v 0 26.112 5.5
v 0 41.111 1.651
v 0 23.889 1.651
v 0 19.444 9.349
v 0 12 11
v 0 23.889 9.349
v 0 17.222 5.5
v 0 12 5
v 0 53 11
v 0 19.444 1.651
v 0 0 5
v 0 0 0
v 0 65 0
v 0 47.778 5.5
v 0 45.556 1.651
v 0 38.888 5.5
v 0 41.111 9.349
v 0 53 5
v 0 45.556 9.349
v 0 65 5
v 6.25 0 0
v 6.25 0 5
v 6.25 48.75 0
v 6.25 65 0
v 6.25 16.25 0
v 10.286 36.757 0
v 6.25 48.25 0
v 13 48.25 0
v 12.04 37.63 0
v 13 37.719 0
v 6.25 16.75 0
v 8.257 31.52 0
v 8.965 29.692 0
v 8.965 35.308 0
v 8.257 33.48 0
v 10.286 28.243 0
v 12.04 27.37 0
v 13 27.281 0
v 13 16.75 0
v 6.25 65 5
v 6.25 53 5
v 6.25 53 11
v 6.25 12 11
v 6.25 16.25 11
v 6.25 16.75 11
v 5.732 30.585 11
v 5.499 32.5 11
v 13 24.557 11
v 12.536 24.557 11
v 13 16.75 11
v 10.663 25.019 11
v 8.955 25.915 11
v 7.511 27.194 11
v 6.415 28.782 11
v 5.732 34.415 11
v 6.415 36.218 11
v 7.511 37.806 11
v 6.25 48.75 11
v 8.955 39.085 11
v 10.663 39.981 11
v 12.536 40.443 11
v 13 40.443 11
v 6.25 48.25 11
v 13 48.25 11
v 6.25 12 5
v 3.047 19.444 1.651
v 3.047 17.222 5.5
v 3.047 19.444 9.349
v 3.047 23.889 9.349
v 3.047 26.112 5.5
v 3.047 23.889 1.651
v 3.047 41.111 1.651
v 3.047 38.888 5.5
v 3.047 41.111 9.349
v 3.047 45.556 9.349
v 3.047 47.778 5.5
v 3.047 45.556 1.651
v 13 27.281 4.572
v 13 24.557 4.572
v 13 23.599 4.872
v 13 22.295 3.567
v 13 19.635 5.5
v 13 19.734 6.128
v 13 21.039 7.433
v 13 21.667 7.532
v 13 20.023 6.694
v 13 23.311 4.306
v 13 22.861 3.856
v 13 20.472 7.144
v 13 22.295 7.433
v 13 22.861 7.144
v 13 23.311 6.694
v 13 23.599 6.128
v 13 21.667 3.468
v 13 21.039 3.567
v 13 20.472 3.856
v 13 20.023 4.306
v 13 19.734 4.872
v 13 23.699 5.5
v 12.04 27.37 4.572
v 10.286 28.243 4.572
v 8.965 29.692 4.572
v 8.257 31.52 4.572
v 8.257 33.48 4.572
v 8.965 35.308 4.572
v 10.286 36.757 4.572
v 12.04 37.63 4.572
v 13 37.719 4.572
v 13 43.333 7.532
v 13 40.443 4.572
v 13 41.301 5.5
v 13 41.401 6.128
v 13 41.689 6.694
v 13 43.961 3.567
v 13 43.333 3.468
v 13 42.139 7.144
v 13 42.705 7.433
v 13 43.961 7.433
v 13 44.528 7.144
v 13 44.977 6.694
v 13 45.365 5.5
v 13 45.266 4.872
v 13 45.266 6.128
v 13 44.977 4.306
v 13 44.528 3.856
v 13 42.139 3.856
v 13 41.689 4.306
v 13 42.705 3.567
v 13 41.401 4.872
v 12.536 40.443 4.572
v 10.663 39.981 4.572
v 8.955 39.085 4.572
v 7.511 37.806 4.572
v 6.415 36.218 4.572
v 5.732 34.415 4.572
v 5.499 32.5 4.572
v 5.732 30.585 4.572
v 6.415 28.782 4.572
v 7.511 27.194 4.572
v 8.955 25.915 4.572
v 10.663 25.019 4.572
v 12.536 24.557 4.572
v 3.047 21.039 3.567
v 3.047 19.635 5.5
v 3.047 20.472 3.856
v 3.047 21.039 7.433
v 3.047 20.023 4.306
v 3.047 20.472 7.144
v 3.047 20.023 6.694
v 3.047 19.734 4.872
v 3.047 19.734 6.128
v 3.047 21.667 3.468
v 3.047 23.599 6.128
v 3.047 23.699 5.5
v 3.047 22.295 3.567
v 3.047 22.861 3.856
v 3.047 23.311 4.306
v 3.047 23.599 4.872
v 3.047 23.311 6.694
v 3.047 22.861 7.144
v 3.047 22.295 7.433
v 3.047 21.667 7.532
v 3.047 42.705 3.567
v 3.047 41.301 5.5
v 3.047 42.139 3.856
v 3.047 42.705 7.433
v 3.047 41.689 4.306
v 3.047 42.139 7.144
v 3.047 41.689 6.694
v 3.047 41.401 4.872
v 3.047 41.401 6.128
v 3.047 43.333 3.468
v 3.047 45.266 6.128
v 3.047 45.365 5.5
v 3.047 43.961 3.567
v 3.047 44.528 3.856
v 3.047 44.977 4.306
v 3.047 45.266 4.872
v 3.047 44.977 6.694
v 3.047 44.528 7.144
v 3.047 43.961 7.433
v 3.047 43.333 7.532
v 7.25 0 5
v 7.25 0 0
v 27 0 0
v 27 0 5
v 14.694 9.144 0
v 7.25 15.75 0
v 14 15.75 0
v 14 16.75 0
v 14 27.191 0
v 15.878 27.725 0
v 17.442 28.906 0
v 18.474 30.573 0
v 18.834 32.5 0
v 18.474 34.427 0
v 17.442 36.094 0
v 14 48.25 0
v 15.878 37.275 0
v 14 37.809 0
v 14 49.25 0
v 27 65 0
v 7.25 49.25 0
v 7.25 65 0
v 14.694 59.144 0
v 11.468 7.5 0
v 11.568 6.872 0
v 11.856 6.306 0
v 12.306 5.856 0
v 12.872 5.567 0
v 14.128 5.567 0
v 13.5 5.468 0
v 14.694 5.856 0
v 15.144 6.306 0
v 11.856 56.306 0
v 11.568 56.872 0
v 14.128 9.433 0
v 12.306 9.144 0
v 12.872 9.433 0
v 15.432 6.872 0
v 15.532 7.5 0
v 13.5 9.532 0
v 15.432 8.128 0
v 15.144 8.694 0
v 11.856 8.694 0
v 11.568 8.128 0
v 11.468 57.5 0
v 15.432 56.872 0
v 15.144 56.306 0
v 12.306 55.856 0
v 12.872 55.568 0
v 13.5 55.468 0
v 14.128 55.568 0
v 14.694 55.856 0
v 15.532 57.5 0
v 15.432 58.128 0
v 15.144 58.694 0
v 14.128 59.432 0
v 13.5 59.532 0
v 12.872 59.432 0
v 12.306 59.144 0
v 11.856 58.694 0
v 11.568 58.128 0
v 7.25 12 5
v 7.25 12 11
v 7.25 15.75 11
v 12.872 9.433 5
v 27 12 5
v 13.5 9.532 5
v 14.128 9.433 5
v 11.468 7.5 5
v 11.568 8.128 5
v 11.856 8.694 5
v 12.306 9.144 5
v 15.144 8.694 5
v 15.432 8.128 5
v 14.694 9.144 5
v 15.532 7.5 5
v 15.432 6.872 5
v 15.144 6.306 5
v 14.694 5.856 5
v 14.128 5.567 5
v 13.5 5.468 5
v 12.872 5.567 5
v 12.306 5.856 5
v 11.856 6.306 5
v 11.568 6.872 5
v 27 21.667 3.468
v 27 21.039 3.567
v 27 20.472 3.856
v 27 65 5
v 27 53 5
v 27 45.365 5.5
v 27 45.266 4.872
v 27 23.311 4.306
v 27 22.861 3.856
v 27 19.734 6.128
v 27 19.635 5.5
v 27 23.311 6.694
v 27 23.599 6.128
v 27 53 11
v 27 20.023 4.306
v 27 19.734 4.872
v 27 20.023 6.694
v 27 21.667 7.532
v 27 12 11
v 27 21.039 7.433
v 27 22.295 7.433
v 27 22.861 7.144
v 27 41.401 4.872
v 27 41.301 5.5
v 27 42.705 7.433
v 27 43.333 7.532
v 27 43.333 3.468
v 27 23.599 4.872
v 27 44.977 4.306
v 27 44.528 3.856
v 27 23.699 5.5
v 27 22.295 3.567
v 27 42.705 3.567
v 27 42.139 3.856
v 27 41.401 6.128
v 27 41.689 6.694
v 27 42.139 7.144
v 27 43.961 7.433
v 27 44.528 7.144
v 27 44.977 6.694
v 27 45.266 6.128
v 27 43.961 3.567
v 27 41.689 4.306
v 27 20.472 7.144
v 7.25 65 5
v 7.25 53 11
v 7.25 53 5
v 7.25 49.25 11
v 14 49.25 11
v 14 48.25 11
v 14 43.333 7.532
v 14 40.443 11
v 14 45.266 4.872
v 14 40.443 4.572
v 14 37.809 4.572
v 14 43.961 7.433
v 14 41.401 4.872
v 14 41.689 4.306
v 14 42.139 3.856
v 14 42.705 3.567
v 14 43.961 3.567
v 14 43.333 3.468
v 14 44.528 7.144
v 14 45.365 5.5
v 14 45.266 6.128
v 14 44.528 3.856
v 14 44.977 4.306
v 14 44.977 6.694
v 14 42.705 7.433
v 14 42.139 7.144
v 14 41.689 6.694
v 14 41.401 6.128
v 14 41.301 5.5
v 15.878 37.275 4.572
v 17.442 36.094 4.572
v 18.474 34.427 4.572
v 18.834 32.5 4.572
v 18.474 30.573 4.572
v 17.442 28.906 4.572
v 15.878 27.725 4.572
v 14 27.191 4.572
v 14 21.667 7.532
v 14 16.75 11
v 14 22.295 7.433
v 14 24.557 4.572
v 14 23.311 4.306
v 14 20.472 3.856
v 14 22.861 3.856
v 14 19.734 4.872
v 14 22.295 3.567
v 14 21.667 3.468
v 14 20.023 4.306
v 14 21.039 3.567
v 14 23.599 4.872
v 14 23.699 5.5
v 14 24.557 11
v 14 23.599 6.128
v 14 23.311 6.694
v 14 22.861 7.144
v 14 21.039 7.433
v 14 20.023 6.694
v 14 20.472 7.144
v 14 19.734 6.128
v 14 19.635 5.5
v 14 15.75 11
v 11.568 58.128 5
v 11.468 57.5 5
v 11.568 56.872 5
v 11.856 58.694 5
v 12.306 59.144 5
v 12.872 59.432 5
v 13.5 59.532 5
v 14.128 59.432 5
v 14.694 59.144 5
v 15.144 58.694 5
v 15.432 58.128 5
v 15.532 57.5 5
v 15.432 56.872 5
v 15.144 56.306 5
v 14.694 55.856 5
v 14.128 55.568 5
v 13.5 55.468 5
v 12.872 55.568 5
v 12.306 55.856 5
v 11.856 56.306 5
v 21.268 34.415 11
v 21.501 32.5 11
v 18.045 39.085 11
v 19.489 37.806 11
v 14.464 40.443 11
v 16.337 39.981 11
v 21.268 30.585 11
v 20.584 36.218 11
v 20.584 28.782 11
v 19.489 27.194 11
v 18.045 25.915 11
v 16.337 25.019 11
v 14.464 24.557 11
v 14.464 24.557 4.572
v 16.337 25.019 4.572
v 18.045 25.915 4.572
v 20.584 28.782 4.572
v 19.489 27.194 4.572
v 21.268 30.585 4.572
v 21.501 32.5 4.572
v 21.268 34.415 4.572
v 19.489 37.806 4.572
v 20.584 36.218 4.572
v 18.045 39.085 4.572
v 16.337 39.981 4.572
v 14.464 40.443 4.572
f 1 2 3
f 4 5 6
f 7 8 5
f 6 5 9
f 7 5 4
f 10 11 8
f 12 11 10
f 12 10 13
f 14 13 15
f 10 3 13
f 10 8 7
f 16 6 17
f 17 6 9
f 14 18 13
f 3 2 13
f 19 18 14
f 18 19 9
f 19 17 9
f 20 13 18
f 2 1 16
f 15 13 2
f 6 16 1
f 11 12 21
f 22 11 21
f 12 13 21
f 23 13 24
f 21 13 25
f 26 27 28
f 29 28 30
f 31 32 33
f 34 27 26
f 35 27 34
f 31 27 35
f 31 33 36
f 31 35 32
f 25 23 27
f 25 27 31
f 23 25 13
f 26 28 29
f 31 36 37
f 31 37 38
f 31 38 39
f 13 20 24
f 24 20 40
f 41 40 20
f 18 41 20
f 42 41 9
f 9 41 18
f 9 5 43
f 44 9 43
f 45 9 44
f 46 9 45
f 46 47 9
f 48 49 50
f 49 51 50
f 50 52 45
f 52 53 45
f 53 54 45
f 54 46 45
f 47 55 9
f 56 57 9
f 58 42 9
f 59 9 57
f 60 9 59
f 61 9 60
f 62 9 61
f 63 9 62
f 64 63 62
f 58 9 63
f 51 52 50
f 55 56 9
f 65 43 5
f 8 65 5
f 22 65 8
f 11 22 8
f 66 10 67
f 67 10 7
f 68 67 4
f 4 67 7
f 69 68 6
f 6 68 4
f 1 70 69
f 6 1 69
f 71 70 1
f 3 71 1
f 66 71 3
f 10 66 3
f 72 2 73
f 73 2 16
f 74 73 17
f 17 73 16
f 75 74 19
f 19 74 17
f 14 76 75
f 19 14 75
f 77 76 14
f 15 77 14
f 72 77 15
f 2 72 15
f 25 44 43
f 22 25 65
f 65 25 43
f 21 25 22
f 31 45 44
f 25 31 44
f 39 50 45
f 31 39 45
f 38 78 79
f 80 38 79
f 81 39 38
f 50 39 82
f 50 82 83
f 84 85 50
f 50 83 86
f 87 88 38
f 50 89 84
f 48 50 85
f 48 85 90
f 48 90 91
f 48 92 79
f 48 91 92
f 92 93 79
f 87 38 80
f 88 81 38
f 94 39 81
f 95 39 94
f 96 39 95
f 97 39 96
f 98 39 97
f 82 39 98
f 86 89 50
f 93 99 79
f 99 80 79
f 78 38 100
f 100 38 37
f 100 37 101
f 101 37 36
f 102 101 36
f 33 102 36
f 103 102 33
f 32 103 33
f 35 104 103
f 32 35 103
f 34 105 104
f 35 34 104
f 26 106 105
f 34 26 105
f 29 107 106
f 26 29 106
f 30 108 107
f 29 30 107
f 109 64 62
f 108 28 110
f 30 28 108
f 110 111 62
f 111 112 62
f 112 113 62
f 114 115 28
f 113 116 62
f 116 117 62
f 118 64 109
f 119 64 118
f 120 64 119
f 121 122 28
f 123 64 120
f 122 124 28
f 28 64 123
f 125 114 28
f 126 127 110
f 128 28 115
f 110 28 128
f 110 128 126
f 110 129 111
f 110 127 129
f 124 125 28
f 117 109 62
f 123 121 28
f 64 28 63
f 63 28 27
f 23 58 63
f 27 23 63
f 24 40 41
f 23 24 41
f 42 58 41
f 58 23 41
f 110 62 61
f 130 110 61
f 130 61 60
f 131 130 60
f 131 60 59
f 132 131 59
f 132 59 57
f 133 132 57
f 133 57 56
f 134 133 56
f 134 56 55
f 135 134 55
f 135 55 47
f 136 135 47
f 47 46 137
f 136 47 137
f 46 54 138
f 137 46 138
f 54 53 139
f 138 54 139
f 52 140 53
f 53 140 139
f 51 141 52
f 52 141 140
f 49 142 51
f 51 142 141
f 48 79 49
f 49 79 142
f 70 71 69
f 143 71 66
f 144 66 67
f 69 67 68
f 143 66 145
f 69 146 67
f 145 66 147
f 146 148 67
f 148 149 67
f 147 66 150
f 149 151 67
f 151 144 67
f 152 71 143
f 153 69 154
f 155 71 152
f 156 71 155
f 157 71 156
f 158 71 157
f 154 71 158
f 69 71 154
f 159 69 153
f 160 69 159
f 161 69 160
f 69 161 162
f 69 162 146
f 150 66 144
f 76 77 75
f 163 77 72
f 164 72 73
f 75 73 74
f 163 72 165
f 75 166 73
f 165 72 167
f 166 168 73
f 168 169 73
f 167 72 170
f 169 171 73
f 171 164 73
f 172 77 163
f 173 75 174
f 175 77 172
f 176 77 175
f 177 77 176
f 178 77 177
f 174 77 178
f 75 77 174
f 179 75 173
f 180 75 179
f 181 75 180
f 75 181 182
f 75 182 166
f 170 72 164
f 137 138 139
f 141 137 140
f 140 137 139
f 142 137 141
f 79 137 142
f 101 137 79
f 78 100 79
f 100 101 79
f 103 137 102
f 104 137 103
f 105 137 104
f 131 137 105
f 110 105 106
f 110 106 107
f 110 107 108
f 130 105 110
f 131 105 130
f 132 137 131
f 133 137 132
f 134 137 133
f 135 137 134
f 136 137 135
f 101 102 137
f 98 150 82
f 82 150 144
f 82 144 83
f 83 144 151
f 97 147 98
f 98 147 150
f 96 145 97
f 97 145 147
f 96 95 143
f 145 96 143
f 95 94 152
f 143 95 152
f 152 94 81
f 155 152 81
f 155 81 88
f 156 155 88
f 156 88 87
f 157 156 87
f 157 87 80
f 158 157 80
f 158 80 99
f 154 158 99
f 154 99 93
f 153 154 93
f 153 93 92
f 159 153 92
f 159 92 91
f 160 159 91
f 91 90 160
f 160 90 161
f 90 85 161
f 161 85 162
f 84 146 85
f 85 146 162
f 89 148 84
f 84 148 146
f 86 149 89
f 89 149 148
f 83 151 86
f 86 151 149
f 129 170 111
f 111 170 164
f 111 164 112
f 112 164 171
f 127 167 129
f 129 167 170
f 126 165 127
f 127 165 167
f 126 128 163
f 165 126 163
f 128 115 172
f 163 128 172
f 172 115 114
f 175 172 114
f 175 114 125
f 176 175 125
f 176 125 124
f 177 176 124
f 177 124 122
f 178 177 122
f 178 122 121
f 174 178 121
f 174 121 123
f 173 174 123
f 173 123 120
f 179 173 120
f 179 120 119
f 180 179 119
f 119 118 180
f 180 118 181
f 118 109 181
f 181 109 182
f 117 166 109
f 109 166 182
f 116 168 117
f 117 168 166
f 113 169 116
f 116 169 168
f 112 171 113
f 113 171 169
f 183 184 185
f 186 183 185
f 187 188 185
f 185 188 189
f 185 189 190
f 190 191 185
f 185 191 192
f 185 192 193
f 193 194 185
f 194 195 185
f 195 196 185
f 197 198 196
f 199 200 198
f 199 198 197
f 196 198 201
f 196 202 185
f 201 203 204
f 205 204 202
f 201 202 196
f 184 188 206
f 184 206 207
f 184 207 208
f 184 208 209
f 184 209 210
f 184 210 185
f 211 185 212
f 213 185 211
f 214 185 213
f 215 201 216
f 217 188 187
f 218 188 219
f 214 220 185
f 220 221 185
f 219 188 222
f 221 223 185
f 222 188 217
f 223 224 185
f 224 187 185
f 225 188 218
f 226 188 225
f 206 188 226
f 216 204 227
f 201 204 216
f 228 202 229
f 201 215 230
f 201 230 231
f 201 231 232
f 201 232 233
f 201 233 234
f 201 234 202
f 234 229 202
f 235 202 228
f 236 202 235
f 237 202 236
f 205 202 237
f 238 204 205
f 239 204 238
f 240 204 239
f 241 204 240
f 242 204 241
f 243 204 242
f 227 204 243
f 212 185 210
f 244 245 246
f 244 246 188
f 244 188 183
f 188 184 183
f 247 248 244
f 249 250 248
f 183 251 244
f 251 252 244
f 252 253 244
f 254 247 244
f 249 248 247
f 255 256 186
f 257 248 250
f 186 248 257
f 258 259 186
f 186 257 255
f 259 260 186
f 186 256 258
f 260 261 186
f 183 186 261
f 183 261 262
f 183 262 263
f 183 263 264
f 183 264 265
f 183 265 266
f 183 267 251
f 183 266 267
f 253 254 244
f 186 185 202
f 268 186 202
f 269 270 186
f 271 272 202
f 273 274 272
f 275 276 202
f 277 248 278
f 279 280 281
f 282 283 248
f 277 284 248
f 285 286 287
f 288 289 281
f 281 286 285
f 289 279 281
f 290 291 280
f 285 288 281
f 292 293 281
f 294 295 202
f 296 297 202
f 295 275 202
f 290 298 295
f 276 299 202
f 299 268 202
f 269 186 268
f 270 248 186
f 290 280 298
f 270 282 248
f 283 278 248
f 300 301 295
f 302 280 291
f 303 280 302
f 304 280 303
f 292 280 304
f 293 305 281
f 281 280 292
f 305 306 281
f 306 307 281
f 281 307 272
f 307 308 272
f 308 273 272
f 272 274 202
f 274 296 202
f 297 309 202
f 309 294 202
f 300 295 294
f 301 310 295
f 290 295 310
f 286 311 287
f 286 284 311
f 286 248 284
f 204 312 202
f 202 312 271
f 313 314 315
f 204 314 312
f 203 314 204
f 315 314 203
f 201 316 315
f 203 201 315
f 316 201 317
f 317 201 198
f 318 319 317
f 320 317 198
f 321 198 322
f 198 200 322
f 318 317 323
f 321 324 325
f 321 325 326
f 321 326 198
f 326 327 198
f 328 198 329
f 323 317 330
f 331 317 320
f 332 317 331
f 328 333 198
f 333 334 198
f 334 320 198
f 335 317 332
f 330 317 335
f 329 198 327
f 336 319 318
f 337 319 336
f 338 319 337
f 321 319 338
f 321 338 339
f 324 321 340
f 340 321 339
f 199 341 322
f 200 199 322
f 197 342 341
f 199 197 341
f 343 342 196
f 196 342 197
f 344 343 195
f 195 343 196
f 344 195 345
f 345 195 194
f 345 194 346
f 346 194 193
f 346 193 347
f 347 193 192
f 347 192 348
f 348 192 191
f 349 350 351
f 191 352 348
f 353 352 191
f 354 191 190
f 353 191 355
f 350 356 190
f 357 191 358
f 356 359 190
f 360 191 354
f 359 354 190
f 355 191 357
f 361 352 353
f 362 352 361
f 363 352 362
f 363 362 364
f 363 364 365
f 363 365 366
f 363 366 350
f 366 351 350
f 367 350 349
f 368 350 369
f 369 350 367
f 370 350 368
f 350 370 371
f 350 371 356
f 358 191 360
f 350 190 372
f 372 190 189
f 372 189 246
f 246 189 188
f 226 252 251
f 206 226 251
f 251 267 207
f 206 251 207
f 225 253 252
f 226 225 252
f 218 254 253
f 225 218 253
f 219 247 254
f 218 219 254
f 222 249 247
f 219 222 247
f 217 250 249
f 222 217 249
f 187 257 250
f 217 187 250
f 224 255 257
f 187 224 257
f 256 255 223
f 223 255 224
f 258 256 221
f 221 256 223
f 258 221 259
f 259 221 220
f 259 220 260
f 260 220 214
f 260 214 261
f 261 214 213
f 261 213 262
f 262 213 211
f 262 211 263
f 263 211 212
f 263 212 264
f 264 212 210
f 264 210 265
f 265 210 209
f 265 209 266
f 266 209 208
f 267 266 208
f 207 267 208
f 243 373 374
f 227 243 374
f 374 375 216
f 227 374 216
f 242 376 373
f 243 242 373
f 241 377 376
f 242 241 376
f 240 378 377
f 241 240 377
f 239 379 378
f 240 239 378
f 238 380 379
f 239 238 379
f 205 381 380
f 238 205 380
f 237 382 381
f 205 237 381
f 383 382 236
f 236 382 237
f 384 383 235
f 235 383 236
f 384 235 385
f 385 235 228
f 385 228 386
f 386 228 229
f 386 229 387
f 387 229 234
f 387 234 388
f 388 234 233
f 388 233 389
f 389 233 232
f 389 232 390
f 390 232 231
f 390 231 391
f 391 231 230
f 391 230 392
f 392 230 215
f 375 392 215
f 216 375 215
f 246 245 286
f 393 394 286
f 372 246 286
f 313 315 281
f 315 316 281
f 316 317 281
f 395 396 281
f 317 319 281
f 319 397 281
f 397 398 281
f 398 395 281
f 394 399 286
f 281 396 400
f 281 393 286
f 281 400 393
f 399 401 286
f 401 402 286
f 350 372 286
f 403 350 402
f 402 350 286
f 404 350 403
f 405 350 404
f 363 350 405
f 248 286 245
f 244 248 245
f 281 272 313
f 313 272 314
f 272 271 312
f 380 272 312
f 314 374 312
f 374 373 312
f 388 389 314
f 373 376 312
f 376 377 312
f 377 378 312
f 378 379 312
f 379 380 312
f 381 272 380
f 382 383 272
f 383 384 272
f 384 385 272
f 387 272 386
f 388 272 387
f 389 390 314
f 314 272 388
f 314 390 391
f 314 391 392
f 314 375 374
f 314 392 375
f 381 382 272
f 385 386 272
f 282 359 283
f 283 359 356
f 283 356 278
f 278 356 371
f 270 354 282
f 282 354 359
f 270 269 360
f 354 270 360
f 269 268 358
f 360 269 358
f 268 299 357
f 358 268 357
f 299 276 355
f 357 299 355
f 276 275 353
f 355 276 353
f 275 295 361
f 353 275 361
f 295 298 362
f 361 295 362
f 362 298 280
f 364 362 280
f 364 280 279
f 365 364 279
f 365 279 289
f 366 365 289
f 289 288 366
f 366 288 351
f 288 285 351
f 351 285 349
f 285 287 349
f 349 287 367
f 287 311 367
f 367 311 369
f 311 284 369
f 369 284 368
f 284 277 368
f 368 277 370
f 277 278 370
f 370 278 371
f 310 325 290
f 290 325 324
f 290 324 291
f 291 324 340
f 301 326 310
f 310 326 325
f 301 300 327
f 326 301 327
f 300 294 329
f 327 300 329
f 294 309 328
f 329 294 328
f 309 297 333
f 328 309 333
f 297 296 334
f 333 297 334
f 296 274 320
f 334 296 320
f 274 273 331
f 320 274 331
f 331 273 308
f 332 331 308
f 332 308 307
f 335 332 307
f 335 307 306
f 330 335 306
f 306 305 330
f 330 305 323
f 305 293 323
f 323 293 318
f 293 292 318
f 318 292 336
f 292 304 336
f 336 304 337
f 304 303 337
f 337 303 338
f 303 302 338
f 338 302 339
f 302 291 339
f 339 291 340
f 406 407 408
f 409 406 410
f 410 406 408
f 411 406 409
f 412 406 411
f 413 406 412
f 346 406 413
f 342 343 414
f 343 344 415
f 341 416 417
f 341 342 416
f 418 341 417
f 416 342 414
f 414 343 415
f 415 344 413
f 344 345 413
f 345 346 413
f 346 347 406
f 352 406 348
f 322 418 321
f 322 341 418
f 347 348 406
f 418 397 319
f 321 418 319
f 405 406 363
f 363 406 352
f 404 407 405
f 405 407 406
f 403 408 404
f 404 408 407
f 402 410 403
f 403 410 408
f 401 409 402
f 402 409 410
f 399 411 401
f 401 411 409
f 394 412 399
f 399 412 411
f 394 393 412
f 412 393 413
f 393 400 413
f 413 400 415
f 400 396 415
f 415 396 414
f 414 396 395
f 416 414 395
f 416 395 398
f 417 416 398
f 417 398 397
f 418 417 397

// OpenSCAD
include <MCAD/units.scad>
include <MCAD/nuts_and_bolts.scad>


width = 27;
length = 65;
height = 11;
jhead_diameter = .63 * inch;
jhead_diameter_inner = .42 * inch;


module no6nut() { cylinder(r= .35/2 * inch, h=.12 * inch, $fn = 6, center=[0,0]); }
module no6rod() { cylinder(r= .16/2 * inch, h=2 * inch, $fn = 20, center=[0,0]); }

difference(){
cube([width,length,height]);


// JHead Hole
translate([width/2,length/2,0])
union(){
	translate([0,0,.18 * inch])
		cylinder(100,jhead_diameter/2,jhead_diameter/2);

	cylinder(100,jhead_diameter_inner/2,jhead_diameter_inner/2);
};

	// Cut in half
	for (side = [-1,1])
	translate([width/4,length/2 + length/2*side,0])
	cube([1,length/2,100], center=true);
	
	for (side = [-1,1])
	translate([width/2.6666,length/2 + length/4*side,0])
	cube([width/4 + 1,1,100], center=true);

	translate([width/2,length/2,0])
	cube([1,length/2,100], center=true);	
	
	

// nut holder
    for (side = [-1,1])
	translate([-0.001, length/2 +   length/6 * side,height/2])
	rotate([0,90,0])
	rotate([0,0,90])
	union(){
	no6nut();
	no6rod();
	}

	// holes to connect to carriage
	for (side = [-1,1])
	{
       translate([width/2,length/2 + 50/2 * side ,0])
	  no6rod();
	}	
	
	
	// made side thinner
	for (side=[0,1])
	translate([0,side * (length-12),5])
	# cube([width,12,height]);
	
	
	
};
